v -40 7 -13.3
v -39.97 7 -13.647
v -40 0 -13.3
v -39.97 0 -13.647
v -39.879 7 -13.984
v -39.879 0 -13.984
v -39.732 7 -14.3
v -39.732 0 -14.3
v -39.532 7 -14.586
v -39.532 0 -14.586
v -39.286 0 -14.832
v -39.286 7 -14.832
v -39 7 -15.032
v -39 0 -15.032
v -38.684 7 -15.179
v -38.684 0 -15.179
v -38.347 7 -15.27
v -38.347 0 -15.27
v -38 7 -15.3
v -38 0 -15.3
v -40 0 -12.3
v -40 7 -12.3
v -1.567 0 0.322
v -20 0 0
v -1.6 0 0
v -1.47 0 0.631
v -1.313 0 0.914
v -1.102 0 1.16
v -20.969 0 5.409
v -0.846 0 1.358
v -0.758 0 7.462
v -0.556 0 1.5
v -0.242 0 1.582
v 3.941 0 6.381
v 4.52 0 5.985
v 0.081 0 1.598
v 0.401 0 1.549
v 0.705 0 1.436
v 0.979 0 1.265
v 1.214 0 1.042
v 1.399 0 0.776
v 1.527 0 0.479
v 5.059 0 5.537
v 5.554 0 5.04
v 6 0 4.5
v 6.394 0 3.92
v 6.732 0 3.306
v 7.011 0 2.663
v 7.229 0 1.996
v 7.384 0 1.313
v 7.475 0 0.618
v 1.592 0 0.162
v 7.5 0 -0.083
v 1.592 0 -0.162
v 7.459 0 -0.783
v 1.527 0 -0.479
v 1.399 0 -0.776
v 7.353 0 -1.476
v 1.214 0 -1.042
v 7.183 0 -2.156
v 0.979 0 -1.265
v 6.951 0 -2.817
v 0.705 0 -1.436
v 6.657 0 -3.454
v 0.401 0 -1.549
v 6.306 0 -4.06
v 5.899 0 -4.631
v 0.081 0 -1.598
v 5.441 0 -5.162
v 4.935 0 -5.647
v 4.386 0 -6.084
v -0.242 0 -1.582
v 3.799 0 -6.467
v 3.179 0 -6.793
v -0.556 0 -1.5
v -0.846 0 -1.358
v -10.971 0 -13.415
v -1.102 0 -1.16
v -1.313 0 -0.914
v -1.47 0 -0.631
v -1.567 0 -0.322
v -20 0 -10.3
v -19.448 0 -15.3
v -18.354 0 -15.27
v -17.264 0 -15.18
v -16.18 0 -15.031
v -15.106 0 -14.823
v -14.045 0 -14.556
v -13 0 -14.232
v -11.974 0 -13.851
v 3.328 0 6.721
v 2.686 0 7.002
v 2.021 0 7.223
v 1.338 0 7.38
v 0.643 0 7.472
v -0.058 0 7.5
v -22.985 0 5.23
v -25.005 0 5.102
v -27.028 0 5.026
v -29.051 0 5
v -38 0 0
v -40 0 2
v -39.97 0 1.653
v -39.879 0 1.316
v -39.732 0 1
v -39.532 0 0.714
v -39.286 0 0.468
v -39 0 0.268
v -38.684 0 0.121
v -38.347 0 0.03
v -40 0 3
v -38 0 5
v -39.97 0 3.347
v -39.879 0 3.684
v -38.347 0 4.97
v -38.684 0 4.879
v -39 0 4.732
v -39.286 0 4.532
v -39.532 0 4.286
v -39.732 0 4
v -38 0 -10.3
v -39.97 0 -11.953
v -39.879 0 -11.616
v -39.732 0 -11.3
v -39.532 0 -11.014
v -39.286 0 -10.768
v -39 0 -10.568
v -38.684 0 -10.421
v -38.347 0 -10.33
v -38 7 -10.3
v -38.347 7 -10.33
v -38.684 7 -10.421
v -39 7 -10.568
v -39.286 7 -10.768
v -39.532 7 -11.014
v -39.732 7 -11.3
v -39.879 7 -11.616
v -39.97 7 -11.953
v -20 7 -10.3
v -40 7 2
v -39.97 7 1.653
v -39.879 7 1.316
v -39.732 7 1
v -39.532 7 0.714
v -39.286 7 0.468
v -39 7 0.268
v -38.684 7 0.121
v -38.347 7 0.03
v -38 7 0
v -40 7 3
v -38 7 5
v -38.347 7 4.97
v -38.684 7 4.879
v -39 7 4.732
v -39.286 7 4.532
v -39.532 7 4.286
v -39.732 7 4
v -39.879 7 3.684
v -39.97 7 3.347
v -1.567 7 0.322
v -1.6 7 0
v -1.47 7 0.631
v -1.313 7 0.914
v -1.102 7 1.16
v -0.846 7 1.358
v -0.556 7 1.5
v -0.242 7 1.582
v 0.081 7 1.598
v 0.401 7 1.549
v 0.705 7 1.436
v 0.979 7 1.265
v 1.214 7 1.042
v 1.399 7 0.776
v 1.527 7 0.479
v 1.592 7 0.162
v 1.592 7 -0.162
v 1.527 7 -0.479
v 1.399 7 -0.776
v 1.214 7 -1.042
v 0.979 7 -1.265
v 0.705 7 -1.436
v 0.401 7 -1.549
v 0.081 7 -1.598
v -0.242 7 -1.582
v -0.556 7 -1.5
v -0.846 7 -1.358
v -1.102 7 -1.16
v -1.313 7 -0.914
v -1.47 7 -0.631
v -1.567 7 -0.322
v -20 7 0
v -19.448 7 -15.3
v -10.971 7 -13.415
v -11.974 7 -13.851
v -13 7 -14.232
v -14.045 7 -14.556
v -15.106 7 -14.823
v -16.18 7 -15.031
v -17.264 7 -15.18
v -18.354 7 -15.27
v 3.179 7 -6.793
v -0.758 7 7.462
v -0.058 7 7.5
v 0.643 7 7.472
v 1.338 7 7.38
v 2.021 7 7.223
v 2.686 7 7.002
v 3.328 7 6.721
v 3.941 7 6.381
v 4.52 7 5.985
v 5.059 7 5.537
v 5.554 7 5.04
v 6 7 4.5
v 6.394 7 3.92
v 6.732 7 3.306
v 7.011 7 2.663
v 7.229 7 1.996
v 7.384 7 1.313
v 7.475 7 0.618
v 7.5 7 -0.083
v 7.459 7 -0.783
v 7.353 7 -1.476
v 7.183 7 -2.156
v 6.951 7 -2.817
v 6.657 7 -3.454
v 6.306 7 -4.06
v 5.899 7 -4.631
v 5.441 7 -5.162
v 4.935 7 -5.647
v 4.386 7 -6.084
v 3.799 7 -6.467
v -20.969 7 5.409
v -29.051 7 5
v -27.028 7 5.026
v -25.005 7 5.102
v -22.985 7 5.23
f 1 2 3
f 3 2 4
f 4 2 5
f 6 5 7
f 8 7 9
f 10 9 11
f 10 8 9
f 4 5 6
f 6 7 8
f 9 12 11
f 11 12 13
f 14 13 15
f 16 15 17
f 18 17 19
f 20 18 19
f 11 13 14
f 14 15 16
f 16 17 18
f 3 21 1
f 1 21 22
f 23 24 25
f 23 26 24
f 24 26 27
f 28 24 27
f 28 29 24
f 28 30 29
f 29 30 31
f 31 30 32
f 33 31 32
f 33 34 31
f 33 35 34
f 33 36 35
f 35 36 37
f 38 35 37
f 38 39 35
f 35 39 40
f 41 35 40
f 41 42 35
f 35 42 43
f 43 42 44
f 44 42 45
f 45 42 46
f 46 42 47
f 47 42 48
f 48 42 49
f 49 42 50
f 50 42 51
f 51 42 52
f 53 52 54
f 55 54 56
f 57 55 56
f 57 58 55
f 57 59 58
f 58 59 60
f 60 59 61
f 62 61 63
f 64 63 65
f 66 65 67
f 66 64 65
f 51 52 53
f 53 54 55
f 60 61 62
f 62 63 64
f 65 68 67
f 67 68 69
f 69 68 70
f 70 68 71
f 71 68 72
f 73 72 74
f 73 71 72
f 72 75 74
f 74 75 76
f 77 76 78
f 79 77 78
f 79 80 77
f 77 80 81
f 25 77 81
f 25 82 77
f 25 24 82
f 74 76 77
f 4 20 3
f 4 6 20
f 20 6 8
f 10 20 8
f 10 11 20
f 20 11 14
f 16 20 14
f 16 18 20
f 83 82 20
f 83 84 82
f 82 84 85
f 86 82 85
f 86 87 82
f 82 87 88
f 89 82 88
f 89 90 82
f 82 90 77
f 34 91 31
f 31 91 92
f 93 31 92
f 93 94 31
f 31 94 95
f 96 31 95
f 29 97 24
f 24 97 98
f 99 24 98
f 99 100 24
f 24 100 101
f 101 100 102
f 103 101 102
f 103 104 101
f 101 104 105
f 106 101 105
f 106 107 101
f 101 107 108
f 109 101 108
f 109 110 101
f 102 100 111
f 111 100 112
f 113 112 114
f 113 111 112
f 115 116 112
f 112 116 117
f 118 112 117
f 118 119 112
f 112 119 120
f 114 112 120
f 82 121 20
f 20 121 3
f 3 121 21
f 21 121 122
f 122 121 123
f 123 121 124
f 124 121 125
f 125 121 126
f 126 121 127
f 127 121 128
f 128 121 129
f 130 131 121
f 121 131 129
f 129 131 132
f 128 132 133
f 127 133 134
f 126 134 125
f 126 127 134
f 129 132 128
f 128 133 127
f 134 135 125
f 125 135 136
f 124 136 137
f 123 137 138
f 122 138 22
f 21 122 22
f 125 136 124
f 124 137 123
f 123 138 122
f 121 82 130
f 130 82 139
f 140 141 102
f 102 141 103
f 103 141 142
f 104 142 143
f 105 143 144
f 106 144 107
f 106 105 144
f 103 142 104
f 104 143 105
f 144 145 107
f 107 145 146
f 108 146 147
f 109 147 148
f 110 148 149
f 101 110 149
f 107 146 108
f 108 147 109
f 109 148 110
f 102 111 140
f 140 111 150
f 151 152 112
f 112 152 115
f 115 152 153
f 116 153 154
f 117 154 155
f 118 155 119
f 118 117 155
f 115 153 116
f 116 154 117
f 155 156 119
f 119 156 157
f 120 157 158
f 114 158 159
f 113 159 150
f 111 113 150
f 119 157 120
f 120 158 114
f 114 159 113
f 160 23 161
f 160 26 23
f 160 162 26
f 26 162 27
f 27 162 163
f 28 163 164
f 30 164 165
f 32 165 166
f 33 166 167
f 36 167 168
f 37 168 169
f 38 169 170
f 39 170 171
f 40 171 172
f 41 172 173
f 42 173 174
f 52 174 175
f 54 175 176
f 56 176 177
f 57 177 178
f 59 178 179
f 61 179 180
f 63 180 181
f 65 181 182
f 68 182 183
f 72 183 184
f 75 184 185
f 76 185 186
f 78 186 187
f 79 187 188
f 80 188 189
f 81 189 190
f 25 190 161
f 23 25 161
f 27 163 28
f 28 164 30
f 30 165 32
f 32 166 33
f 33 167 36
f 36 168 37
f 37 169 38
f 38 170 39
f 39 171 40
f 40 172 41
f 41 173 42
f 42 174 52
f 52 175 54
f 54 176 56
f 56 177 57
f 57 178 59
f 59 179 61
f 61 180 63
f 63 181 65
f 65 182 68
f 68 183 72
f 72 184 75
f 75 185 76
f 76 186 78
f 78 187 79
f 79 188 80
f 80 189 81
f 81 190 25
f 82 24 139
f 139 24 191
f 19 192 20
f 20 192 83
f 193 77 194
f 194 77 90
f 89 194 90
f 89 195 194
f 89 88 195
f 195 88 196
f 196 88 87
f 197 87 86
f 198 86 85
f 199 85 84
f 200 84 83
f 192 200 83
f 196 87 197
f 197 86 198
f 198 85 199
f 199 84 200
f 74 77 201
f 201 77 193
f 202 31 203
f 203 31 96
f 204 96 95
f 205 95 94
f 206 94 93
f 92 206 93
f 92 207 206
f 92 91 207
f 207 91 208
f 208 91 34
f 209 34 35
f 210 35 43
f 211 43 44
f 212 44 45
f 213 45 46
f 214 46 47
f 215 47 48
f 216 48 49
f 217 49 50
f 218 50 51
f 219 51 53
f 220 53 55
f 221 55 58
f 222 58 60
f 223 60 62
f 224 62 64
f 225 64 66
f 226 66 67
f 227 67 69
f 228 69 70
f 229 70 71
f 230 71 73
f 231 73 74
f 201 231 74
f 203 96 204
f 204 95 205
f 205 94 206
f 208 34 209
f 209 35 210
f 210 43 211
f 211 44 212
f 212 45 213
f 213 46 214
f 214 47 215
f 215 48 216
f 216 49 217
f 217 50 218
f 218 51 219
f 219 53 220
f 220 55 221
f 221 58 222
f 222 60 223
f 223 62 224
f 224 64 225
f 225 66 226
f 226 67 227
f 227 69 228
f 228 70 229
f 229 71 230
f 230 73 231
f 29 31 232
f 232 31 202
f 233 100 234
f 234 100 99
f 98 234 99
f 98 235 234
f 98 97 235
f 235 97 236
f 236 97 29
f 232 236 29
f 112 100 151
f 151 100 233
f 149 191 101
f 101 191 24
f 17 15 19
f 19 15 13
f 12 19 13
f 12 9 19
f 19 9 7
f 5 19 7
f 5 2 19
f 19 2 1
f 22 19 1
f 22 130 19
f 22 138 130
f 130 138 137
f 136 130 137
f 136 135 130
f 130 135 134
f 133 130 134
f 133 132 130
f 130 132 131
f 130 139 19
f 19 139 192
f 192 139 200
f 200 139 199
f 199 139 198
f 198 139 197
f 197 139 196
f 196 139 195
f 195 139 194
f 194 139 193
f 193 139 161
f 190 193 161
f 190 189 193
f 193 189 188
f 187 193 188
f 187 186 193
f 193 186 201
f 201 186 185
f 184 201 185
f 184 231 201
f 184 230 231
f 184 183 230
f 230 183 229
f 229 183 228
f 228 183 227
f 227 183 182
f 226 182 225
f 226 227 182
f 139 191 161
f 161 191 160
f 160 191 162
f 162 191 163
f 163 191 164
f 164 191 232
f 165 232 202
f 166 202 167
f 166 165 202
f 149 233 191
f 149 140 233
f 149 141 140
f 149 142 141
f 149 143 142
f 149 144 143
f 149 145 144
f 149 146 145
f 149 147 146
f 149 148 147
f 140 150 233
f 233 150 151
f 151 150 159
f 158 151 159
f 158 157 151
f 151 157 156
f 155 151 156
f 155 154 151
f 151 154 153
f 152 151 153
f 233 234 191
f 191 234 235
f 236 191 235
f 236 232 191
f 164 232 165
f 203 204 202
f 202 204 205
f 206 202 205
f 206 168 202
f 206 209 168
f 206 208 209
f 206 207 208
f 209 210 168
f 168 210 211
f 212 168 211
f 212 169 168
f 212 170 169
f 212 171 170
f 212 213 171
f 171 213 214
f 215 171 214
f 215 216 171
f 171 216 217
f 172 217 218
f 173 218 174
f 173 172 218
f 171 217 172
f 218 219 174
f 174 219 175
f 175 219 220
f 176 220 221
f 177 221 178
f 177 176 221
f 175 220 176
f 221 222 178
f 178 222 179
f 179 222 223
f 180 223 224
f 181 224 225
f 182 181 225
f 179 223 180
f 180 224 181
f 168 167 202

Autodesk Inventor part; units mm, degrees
ref_plane "YZ Plane" through (0, 0, 0) normal (1, 0, 0) x (0, 1, 0)
ref_plane "XZ Plane" through (0, 0, 0) normal (0, 1, 0) x (-1, 0, 0)
ref_plane "XY Plane" through (0, 0, 0) normal (0, 0, 1) x (1, 0, 0)
sketch "Sketch10" plane through (0, 0, 0) normal (0, 1, 0) x (-1, 0, 0)
  circle A0 centre (0, 0) radius 1.6
  arc A1 (0.7577, 7.4616) -> (-3.1789, -6.793) centre (0, 0) ccw
  line L0 (0, 0) -> (0, -7.5) construction
  line L1 (0, 0) -> (7.5, 0) construction
  line L2 (0, 0) -> (63.5588, 0) construction
  line L3 (40, 0) -> (20, 0)
  line L4 (20, 0) -> (20, -10.3)
  line L5 (20, -10.3) -> (40, -10.3)
  line L6 (40, -10.3) -> (40, -15.3)
  line L7 (40, -15.3) -> (19.4481, -15.3)
  line L8 (10.9712, -13.4147) -> (-3.1789, -6.793)
  line L9 (40, 0) -> (40, 5)
  line L10 (40, 5) -> (29.0513, 5)
  line L11 (20.9694, 5.4093) -> (0.7577, 7.4616)
  arc A2 (20.9694, 5.4093) -> (29.0513, 5) centre (29.0513, 85) ccw
  arc A3 (10.9712, -13.4147) -> (19.4481, -15.3) centre (19.4481, 4.7) ccw
  point P0 (15, -15.3)
  point P1 (25, 5)
  dimension "d117" = 3.2
  dimension "d118" = 15
  dimension "d120" = 10.3
  dimension "d121" = 20
  dimension "d122" = 0
  dimension "d123" = 20
  dimension "d124" = 5
  dimension "d125" = 5
  dimension "d126" = 25
  dimension "d127" = 15
  dimension "d128" = 80
  dimension "d129" = 20
  dimension "d133" = 0
extrude "Extrusion7" add sketch "Sketch10" along normal blind 7
fillet "Fillet5" radius 2 4 edges at (-40, 3.5, 5) (-40, 3.5, 0) (-40, 3.5, -10.3) (-40, 3.5, -15.3)
properties part number "Soportes filamento"
